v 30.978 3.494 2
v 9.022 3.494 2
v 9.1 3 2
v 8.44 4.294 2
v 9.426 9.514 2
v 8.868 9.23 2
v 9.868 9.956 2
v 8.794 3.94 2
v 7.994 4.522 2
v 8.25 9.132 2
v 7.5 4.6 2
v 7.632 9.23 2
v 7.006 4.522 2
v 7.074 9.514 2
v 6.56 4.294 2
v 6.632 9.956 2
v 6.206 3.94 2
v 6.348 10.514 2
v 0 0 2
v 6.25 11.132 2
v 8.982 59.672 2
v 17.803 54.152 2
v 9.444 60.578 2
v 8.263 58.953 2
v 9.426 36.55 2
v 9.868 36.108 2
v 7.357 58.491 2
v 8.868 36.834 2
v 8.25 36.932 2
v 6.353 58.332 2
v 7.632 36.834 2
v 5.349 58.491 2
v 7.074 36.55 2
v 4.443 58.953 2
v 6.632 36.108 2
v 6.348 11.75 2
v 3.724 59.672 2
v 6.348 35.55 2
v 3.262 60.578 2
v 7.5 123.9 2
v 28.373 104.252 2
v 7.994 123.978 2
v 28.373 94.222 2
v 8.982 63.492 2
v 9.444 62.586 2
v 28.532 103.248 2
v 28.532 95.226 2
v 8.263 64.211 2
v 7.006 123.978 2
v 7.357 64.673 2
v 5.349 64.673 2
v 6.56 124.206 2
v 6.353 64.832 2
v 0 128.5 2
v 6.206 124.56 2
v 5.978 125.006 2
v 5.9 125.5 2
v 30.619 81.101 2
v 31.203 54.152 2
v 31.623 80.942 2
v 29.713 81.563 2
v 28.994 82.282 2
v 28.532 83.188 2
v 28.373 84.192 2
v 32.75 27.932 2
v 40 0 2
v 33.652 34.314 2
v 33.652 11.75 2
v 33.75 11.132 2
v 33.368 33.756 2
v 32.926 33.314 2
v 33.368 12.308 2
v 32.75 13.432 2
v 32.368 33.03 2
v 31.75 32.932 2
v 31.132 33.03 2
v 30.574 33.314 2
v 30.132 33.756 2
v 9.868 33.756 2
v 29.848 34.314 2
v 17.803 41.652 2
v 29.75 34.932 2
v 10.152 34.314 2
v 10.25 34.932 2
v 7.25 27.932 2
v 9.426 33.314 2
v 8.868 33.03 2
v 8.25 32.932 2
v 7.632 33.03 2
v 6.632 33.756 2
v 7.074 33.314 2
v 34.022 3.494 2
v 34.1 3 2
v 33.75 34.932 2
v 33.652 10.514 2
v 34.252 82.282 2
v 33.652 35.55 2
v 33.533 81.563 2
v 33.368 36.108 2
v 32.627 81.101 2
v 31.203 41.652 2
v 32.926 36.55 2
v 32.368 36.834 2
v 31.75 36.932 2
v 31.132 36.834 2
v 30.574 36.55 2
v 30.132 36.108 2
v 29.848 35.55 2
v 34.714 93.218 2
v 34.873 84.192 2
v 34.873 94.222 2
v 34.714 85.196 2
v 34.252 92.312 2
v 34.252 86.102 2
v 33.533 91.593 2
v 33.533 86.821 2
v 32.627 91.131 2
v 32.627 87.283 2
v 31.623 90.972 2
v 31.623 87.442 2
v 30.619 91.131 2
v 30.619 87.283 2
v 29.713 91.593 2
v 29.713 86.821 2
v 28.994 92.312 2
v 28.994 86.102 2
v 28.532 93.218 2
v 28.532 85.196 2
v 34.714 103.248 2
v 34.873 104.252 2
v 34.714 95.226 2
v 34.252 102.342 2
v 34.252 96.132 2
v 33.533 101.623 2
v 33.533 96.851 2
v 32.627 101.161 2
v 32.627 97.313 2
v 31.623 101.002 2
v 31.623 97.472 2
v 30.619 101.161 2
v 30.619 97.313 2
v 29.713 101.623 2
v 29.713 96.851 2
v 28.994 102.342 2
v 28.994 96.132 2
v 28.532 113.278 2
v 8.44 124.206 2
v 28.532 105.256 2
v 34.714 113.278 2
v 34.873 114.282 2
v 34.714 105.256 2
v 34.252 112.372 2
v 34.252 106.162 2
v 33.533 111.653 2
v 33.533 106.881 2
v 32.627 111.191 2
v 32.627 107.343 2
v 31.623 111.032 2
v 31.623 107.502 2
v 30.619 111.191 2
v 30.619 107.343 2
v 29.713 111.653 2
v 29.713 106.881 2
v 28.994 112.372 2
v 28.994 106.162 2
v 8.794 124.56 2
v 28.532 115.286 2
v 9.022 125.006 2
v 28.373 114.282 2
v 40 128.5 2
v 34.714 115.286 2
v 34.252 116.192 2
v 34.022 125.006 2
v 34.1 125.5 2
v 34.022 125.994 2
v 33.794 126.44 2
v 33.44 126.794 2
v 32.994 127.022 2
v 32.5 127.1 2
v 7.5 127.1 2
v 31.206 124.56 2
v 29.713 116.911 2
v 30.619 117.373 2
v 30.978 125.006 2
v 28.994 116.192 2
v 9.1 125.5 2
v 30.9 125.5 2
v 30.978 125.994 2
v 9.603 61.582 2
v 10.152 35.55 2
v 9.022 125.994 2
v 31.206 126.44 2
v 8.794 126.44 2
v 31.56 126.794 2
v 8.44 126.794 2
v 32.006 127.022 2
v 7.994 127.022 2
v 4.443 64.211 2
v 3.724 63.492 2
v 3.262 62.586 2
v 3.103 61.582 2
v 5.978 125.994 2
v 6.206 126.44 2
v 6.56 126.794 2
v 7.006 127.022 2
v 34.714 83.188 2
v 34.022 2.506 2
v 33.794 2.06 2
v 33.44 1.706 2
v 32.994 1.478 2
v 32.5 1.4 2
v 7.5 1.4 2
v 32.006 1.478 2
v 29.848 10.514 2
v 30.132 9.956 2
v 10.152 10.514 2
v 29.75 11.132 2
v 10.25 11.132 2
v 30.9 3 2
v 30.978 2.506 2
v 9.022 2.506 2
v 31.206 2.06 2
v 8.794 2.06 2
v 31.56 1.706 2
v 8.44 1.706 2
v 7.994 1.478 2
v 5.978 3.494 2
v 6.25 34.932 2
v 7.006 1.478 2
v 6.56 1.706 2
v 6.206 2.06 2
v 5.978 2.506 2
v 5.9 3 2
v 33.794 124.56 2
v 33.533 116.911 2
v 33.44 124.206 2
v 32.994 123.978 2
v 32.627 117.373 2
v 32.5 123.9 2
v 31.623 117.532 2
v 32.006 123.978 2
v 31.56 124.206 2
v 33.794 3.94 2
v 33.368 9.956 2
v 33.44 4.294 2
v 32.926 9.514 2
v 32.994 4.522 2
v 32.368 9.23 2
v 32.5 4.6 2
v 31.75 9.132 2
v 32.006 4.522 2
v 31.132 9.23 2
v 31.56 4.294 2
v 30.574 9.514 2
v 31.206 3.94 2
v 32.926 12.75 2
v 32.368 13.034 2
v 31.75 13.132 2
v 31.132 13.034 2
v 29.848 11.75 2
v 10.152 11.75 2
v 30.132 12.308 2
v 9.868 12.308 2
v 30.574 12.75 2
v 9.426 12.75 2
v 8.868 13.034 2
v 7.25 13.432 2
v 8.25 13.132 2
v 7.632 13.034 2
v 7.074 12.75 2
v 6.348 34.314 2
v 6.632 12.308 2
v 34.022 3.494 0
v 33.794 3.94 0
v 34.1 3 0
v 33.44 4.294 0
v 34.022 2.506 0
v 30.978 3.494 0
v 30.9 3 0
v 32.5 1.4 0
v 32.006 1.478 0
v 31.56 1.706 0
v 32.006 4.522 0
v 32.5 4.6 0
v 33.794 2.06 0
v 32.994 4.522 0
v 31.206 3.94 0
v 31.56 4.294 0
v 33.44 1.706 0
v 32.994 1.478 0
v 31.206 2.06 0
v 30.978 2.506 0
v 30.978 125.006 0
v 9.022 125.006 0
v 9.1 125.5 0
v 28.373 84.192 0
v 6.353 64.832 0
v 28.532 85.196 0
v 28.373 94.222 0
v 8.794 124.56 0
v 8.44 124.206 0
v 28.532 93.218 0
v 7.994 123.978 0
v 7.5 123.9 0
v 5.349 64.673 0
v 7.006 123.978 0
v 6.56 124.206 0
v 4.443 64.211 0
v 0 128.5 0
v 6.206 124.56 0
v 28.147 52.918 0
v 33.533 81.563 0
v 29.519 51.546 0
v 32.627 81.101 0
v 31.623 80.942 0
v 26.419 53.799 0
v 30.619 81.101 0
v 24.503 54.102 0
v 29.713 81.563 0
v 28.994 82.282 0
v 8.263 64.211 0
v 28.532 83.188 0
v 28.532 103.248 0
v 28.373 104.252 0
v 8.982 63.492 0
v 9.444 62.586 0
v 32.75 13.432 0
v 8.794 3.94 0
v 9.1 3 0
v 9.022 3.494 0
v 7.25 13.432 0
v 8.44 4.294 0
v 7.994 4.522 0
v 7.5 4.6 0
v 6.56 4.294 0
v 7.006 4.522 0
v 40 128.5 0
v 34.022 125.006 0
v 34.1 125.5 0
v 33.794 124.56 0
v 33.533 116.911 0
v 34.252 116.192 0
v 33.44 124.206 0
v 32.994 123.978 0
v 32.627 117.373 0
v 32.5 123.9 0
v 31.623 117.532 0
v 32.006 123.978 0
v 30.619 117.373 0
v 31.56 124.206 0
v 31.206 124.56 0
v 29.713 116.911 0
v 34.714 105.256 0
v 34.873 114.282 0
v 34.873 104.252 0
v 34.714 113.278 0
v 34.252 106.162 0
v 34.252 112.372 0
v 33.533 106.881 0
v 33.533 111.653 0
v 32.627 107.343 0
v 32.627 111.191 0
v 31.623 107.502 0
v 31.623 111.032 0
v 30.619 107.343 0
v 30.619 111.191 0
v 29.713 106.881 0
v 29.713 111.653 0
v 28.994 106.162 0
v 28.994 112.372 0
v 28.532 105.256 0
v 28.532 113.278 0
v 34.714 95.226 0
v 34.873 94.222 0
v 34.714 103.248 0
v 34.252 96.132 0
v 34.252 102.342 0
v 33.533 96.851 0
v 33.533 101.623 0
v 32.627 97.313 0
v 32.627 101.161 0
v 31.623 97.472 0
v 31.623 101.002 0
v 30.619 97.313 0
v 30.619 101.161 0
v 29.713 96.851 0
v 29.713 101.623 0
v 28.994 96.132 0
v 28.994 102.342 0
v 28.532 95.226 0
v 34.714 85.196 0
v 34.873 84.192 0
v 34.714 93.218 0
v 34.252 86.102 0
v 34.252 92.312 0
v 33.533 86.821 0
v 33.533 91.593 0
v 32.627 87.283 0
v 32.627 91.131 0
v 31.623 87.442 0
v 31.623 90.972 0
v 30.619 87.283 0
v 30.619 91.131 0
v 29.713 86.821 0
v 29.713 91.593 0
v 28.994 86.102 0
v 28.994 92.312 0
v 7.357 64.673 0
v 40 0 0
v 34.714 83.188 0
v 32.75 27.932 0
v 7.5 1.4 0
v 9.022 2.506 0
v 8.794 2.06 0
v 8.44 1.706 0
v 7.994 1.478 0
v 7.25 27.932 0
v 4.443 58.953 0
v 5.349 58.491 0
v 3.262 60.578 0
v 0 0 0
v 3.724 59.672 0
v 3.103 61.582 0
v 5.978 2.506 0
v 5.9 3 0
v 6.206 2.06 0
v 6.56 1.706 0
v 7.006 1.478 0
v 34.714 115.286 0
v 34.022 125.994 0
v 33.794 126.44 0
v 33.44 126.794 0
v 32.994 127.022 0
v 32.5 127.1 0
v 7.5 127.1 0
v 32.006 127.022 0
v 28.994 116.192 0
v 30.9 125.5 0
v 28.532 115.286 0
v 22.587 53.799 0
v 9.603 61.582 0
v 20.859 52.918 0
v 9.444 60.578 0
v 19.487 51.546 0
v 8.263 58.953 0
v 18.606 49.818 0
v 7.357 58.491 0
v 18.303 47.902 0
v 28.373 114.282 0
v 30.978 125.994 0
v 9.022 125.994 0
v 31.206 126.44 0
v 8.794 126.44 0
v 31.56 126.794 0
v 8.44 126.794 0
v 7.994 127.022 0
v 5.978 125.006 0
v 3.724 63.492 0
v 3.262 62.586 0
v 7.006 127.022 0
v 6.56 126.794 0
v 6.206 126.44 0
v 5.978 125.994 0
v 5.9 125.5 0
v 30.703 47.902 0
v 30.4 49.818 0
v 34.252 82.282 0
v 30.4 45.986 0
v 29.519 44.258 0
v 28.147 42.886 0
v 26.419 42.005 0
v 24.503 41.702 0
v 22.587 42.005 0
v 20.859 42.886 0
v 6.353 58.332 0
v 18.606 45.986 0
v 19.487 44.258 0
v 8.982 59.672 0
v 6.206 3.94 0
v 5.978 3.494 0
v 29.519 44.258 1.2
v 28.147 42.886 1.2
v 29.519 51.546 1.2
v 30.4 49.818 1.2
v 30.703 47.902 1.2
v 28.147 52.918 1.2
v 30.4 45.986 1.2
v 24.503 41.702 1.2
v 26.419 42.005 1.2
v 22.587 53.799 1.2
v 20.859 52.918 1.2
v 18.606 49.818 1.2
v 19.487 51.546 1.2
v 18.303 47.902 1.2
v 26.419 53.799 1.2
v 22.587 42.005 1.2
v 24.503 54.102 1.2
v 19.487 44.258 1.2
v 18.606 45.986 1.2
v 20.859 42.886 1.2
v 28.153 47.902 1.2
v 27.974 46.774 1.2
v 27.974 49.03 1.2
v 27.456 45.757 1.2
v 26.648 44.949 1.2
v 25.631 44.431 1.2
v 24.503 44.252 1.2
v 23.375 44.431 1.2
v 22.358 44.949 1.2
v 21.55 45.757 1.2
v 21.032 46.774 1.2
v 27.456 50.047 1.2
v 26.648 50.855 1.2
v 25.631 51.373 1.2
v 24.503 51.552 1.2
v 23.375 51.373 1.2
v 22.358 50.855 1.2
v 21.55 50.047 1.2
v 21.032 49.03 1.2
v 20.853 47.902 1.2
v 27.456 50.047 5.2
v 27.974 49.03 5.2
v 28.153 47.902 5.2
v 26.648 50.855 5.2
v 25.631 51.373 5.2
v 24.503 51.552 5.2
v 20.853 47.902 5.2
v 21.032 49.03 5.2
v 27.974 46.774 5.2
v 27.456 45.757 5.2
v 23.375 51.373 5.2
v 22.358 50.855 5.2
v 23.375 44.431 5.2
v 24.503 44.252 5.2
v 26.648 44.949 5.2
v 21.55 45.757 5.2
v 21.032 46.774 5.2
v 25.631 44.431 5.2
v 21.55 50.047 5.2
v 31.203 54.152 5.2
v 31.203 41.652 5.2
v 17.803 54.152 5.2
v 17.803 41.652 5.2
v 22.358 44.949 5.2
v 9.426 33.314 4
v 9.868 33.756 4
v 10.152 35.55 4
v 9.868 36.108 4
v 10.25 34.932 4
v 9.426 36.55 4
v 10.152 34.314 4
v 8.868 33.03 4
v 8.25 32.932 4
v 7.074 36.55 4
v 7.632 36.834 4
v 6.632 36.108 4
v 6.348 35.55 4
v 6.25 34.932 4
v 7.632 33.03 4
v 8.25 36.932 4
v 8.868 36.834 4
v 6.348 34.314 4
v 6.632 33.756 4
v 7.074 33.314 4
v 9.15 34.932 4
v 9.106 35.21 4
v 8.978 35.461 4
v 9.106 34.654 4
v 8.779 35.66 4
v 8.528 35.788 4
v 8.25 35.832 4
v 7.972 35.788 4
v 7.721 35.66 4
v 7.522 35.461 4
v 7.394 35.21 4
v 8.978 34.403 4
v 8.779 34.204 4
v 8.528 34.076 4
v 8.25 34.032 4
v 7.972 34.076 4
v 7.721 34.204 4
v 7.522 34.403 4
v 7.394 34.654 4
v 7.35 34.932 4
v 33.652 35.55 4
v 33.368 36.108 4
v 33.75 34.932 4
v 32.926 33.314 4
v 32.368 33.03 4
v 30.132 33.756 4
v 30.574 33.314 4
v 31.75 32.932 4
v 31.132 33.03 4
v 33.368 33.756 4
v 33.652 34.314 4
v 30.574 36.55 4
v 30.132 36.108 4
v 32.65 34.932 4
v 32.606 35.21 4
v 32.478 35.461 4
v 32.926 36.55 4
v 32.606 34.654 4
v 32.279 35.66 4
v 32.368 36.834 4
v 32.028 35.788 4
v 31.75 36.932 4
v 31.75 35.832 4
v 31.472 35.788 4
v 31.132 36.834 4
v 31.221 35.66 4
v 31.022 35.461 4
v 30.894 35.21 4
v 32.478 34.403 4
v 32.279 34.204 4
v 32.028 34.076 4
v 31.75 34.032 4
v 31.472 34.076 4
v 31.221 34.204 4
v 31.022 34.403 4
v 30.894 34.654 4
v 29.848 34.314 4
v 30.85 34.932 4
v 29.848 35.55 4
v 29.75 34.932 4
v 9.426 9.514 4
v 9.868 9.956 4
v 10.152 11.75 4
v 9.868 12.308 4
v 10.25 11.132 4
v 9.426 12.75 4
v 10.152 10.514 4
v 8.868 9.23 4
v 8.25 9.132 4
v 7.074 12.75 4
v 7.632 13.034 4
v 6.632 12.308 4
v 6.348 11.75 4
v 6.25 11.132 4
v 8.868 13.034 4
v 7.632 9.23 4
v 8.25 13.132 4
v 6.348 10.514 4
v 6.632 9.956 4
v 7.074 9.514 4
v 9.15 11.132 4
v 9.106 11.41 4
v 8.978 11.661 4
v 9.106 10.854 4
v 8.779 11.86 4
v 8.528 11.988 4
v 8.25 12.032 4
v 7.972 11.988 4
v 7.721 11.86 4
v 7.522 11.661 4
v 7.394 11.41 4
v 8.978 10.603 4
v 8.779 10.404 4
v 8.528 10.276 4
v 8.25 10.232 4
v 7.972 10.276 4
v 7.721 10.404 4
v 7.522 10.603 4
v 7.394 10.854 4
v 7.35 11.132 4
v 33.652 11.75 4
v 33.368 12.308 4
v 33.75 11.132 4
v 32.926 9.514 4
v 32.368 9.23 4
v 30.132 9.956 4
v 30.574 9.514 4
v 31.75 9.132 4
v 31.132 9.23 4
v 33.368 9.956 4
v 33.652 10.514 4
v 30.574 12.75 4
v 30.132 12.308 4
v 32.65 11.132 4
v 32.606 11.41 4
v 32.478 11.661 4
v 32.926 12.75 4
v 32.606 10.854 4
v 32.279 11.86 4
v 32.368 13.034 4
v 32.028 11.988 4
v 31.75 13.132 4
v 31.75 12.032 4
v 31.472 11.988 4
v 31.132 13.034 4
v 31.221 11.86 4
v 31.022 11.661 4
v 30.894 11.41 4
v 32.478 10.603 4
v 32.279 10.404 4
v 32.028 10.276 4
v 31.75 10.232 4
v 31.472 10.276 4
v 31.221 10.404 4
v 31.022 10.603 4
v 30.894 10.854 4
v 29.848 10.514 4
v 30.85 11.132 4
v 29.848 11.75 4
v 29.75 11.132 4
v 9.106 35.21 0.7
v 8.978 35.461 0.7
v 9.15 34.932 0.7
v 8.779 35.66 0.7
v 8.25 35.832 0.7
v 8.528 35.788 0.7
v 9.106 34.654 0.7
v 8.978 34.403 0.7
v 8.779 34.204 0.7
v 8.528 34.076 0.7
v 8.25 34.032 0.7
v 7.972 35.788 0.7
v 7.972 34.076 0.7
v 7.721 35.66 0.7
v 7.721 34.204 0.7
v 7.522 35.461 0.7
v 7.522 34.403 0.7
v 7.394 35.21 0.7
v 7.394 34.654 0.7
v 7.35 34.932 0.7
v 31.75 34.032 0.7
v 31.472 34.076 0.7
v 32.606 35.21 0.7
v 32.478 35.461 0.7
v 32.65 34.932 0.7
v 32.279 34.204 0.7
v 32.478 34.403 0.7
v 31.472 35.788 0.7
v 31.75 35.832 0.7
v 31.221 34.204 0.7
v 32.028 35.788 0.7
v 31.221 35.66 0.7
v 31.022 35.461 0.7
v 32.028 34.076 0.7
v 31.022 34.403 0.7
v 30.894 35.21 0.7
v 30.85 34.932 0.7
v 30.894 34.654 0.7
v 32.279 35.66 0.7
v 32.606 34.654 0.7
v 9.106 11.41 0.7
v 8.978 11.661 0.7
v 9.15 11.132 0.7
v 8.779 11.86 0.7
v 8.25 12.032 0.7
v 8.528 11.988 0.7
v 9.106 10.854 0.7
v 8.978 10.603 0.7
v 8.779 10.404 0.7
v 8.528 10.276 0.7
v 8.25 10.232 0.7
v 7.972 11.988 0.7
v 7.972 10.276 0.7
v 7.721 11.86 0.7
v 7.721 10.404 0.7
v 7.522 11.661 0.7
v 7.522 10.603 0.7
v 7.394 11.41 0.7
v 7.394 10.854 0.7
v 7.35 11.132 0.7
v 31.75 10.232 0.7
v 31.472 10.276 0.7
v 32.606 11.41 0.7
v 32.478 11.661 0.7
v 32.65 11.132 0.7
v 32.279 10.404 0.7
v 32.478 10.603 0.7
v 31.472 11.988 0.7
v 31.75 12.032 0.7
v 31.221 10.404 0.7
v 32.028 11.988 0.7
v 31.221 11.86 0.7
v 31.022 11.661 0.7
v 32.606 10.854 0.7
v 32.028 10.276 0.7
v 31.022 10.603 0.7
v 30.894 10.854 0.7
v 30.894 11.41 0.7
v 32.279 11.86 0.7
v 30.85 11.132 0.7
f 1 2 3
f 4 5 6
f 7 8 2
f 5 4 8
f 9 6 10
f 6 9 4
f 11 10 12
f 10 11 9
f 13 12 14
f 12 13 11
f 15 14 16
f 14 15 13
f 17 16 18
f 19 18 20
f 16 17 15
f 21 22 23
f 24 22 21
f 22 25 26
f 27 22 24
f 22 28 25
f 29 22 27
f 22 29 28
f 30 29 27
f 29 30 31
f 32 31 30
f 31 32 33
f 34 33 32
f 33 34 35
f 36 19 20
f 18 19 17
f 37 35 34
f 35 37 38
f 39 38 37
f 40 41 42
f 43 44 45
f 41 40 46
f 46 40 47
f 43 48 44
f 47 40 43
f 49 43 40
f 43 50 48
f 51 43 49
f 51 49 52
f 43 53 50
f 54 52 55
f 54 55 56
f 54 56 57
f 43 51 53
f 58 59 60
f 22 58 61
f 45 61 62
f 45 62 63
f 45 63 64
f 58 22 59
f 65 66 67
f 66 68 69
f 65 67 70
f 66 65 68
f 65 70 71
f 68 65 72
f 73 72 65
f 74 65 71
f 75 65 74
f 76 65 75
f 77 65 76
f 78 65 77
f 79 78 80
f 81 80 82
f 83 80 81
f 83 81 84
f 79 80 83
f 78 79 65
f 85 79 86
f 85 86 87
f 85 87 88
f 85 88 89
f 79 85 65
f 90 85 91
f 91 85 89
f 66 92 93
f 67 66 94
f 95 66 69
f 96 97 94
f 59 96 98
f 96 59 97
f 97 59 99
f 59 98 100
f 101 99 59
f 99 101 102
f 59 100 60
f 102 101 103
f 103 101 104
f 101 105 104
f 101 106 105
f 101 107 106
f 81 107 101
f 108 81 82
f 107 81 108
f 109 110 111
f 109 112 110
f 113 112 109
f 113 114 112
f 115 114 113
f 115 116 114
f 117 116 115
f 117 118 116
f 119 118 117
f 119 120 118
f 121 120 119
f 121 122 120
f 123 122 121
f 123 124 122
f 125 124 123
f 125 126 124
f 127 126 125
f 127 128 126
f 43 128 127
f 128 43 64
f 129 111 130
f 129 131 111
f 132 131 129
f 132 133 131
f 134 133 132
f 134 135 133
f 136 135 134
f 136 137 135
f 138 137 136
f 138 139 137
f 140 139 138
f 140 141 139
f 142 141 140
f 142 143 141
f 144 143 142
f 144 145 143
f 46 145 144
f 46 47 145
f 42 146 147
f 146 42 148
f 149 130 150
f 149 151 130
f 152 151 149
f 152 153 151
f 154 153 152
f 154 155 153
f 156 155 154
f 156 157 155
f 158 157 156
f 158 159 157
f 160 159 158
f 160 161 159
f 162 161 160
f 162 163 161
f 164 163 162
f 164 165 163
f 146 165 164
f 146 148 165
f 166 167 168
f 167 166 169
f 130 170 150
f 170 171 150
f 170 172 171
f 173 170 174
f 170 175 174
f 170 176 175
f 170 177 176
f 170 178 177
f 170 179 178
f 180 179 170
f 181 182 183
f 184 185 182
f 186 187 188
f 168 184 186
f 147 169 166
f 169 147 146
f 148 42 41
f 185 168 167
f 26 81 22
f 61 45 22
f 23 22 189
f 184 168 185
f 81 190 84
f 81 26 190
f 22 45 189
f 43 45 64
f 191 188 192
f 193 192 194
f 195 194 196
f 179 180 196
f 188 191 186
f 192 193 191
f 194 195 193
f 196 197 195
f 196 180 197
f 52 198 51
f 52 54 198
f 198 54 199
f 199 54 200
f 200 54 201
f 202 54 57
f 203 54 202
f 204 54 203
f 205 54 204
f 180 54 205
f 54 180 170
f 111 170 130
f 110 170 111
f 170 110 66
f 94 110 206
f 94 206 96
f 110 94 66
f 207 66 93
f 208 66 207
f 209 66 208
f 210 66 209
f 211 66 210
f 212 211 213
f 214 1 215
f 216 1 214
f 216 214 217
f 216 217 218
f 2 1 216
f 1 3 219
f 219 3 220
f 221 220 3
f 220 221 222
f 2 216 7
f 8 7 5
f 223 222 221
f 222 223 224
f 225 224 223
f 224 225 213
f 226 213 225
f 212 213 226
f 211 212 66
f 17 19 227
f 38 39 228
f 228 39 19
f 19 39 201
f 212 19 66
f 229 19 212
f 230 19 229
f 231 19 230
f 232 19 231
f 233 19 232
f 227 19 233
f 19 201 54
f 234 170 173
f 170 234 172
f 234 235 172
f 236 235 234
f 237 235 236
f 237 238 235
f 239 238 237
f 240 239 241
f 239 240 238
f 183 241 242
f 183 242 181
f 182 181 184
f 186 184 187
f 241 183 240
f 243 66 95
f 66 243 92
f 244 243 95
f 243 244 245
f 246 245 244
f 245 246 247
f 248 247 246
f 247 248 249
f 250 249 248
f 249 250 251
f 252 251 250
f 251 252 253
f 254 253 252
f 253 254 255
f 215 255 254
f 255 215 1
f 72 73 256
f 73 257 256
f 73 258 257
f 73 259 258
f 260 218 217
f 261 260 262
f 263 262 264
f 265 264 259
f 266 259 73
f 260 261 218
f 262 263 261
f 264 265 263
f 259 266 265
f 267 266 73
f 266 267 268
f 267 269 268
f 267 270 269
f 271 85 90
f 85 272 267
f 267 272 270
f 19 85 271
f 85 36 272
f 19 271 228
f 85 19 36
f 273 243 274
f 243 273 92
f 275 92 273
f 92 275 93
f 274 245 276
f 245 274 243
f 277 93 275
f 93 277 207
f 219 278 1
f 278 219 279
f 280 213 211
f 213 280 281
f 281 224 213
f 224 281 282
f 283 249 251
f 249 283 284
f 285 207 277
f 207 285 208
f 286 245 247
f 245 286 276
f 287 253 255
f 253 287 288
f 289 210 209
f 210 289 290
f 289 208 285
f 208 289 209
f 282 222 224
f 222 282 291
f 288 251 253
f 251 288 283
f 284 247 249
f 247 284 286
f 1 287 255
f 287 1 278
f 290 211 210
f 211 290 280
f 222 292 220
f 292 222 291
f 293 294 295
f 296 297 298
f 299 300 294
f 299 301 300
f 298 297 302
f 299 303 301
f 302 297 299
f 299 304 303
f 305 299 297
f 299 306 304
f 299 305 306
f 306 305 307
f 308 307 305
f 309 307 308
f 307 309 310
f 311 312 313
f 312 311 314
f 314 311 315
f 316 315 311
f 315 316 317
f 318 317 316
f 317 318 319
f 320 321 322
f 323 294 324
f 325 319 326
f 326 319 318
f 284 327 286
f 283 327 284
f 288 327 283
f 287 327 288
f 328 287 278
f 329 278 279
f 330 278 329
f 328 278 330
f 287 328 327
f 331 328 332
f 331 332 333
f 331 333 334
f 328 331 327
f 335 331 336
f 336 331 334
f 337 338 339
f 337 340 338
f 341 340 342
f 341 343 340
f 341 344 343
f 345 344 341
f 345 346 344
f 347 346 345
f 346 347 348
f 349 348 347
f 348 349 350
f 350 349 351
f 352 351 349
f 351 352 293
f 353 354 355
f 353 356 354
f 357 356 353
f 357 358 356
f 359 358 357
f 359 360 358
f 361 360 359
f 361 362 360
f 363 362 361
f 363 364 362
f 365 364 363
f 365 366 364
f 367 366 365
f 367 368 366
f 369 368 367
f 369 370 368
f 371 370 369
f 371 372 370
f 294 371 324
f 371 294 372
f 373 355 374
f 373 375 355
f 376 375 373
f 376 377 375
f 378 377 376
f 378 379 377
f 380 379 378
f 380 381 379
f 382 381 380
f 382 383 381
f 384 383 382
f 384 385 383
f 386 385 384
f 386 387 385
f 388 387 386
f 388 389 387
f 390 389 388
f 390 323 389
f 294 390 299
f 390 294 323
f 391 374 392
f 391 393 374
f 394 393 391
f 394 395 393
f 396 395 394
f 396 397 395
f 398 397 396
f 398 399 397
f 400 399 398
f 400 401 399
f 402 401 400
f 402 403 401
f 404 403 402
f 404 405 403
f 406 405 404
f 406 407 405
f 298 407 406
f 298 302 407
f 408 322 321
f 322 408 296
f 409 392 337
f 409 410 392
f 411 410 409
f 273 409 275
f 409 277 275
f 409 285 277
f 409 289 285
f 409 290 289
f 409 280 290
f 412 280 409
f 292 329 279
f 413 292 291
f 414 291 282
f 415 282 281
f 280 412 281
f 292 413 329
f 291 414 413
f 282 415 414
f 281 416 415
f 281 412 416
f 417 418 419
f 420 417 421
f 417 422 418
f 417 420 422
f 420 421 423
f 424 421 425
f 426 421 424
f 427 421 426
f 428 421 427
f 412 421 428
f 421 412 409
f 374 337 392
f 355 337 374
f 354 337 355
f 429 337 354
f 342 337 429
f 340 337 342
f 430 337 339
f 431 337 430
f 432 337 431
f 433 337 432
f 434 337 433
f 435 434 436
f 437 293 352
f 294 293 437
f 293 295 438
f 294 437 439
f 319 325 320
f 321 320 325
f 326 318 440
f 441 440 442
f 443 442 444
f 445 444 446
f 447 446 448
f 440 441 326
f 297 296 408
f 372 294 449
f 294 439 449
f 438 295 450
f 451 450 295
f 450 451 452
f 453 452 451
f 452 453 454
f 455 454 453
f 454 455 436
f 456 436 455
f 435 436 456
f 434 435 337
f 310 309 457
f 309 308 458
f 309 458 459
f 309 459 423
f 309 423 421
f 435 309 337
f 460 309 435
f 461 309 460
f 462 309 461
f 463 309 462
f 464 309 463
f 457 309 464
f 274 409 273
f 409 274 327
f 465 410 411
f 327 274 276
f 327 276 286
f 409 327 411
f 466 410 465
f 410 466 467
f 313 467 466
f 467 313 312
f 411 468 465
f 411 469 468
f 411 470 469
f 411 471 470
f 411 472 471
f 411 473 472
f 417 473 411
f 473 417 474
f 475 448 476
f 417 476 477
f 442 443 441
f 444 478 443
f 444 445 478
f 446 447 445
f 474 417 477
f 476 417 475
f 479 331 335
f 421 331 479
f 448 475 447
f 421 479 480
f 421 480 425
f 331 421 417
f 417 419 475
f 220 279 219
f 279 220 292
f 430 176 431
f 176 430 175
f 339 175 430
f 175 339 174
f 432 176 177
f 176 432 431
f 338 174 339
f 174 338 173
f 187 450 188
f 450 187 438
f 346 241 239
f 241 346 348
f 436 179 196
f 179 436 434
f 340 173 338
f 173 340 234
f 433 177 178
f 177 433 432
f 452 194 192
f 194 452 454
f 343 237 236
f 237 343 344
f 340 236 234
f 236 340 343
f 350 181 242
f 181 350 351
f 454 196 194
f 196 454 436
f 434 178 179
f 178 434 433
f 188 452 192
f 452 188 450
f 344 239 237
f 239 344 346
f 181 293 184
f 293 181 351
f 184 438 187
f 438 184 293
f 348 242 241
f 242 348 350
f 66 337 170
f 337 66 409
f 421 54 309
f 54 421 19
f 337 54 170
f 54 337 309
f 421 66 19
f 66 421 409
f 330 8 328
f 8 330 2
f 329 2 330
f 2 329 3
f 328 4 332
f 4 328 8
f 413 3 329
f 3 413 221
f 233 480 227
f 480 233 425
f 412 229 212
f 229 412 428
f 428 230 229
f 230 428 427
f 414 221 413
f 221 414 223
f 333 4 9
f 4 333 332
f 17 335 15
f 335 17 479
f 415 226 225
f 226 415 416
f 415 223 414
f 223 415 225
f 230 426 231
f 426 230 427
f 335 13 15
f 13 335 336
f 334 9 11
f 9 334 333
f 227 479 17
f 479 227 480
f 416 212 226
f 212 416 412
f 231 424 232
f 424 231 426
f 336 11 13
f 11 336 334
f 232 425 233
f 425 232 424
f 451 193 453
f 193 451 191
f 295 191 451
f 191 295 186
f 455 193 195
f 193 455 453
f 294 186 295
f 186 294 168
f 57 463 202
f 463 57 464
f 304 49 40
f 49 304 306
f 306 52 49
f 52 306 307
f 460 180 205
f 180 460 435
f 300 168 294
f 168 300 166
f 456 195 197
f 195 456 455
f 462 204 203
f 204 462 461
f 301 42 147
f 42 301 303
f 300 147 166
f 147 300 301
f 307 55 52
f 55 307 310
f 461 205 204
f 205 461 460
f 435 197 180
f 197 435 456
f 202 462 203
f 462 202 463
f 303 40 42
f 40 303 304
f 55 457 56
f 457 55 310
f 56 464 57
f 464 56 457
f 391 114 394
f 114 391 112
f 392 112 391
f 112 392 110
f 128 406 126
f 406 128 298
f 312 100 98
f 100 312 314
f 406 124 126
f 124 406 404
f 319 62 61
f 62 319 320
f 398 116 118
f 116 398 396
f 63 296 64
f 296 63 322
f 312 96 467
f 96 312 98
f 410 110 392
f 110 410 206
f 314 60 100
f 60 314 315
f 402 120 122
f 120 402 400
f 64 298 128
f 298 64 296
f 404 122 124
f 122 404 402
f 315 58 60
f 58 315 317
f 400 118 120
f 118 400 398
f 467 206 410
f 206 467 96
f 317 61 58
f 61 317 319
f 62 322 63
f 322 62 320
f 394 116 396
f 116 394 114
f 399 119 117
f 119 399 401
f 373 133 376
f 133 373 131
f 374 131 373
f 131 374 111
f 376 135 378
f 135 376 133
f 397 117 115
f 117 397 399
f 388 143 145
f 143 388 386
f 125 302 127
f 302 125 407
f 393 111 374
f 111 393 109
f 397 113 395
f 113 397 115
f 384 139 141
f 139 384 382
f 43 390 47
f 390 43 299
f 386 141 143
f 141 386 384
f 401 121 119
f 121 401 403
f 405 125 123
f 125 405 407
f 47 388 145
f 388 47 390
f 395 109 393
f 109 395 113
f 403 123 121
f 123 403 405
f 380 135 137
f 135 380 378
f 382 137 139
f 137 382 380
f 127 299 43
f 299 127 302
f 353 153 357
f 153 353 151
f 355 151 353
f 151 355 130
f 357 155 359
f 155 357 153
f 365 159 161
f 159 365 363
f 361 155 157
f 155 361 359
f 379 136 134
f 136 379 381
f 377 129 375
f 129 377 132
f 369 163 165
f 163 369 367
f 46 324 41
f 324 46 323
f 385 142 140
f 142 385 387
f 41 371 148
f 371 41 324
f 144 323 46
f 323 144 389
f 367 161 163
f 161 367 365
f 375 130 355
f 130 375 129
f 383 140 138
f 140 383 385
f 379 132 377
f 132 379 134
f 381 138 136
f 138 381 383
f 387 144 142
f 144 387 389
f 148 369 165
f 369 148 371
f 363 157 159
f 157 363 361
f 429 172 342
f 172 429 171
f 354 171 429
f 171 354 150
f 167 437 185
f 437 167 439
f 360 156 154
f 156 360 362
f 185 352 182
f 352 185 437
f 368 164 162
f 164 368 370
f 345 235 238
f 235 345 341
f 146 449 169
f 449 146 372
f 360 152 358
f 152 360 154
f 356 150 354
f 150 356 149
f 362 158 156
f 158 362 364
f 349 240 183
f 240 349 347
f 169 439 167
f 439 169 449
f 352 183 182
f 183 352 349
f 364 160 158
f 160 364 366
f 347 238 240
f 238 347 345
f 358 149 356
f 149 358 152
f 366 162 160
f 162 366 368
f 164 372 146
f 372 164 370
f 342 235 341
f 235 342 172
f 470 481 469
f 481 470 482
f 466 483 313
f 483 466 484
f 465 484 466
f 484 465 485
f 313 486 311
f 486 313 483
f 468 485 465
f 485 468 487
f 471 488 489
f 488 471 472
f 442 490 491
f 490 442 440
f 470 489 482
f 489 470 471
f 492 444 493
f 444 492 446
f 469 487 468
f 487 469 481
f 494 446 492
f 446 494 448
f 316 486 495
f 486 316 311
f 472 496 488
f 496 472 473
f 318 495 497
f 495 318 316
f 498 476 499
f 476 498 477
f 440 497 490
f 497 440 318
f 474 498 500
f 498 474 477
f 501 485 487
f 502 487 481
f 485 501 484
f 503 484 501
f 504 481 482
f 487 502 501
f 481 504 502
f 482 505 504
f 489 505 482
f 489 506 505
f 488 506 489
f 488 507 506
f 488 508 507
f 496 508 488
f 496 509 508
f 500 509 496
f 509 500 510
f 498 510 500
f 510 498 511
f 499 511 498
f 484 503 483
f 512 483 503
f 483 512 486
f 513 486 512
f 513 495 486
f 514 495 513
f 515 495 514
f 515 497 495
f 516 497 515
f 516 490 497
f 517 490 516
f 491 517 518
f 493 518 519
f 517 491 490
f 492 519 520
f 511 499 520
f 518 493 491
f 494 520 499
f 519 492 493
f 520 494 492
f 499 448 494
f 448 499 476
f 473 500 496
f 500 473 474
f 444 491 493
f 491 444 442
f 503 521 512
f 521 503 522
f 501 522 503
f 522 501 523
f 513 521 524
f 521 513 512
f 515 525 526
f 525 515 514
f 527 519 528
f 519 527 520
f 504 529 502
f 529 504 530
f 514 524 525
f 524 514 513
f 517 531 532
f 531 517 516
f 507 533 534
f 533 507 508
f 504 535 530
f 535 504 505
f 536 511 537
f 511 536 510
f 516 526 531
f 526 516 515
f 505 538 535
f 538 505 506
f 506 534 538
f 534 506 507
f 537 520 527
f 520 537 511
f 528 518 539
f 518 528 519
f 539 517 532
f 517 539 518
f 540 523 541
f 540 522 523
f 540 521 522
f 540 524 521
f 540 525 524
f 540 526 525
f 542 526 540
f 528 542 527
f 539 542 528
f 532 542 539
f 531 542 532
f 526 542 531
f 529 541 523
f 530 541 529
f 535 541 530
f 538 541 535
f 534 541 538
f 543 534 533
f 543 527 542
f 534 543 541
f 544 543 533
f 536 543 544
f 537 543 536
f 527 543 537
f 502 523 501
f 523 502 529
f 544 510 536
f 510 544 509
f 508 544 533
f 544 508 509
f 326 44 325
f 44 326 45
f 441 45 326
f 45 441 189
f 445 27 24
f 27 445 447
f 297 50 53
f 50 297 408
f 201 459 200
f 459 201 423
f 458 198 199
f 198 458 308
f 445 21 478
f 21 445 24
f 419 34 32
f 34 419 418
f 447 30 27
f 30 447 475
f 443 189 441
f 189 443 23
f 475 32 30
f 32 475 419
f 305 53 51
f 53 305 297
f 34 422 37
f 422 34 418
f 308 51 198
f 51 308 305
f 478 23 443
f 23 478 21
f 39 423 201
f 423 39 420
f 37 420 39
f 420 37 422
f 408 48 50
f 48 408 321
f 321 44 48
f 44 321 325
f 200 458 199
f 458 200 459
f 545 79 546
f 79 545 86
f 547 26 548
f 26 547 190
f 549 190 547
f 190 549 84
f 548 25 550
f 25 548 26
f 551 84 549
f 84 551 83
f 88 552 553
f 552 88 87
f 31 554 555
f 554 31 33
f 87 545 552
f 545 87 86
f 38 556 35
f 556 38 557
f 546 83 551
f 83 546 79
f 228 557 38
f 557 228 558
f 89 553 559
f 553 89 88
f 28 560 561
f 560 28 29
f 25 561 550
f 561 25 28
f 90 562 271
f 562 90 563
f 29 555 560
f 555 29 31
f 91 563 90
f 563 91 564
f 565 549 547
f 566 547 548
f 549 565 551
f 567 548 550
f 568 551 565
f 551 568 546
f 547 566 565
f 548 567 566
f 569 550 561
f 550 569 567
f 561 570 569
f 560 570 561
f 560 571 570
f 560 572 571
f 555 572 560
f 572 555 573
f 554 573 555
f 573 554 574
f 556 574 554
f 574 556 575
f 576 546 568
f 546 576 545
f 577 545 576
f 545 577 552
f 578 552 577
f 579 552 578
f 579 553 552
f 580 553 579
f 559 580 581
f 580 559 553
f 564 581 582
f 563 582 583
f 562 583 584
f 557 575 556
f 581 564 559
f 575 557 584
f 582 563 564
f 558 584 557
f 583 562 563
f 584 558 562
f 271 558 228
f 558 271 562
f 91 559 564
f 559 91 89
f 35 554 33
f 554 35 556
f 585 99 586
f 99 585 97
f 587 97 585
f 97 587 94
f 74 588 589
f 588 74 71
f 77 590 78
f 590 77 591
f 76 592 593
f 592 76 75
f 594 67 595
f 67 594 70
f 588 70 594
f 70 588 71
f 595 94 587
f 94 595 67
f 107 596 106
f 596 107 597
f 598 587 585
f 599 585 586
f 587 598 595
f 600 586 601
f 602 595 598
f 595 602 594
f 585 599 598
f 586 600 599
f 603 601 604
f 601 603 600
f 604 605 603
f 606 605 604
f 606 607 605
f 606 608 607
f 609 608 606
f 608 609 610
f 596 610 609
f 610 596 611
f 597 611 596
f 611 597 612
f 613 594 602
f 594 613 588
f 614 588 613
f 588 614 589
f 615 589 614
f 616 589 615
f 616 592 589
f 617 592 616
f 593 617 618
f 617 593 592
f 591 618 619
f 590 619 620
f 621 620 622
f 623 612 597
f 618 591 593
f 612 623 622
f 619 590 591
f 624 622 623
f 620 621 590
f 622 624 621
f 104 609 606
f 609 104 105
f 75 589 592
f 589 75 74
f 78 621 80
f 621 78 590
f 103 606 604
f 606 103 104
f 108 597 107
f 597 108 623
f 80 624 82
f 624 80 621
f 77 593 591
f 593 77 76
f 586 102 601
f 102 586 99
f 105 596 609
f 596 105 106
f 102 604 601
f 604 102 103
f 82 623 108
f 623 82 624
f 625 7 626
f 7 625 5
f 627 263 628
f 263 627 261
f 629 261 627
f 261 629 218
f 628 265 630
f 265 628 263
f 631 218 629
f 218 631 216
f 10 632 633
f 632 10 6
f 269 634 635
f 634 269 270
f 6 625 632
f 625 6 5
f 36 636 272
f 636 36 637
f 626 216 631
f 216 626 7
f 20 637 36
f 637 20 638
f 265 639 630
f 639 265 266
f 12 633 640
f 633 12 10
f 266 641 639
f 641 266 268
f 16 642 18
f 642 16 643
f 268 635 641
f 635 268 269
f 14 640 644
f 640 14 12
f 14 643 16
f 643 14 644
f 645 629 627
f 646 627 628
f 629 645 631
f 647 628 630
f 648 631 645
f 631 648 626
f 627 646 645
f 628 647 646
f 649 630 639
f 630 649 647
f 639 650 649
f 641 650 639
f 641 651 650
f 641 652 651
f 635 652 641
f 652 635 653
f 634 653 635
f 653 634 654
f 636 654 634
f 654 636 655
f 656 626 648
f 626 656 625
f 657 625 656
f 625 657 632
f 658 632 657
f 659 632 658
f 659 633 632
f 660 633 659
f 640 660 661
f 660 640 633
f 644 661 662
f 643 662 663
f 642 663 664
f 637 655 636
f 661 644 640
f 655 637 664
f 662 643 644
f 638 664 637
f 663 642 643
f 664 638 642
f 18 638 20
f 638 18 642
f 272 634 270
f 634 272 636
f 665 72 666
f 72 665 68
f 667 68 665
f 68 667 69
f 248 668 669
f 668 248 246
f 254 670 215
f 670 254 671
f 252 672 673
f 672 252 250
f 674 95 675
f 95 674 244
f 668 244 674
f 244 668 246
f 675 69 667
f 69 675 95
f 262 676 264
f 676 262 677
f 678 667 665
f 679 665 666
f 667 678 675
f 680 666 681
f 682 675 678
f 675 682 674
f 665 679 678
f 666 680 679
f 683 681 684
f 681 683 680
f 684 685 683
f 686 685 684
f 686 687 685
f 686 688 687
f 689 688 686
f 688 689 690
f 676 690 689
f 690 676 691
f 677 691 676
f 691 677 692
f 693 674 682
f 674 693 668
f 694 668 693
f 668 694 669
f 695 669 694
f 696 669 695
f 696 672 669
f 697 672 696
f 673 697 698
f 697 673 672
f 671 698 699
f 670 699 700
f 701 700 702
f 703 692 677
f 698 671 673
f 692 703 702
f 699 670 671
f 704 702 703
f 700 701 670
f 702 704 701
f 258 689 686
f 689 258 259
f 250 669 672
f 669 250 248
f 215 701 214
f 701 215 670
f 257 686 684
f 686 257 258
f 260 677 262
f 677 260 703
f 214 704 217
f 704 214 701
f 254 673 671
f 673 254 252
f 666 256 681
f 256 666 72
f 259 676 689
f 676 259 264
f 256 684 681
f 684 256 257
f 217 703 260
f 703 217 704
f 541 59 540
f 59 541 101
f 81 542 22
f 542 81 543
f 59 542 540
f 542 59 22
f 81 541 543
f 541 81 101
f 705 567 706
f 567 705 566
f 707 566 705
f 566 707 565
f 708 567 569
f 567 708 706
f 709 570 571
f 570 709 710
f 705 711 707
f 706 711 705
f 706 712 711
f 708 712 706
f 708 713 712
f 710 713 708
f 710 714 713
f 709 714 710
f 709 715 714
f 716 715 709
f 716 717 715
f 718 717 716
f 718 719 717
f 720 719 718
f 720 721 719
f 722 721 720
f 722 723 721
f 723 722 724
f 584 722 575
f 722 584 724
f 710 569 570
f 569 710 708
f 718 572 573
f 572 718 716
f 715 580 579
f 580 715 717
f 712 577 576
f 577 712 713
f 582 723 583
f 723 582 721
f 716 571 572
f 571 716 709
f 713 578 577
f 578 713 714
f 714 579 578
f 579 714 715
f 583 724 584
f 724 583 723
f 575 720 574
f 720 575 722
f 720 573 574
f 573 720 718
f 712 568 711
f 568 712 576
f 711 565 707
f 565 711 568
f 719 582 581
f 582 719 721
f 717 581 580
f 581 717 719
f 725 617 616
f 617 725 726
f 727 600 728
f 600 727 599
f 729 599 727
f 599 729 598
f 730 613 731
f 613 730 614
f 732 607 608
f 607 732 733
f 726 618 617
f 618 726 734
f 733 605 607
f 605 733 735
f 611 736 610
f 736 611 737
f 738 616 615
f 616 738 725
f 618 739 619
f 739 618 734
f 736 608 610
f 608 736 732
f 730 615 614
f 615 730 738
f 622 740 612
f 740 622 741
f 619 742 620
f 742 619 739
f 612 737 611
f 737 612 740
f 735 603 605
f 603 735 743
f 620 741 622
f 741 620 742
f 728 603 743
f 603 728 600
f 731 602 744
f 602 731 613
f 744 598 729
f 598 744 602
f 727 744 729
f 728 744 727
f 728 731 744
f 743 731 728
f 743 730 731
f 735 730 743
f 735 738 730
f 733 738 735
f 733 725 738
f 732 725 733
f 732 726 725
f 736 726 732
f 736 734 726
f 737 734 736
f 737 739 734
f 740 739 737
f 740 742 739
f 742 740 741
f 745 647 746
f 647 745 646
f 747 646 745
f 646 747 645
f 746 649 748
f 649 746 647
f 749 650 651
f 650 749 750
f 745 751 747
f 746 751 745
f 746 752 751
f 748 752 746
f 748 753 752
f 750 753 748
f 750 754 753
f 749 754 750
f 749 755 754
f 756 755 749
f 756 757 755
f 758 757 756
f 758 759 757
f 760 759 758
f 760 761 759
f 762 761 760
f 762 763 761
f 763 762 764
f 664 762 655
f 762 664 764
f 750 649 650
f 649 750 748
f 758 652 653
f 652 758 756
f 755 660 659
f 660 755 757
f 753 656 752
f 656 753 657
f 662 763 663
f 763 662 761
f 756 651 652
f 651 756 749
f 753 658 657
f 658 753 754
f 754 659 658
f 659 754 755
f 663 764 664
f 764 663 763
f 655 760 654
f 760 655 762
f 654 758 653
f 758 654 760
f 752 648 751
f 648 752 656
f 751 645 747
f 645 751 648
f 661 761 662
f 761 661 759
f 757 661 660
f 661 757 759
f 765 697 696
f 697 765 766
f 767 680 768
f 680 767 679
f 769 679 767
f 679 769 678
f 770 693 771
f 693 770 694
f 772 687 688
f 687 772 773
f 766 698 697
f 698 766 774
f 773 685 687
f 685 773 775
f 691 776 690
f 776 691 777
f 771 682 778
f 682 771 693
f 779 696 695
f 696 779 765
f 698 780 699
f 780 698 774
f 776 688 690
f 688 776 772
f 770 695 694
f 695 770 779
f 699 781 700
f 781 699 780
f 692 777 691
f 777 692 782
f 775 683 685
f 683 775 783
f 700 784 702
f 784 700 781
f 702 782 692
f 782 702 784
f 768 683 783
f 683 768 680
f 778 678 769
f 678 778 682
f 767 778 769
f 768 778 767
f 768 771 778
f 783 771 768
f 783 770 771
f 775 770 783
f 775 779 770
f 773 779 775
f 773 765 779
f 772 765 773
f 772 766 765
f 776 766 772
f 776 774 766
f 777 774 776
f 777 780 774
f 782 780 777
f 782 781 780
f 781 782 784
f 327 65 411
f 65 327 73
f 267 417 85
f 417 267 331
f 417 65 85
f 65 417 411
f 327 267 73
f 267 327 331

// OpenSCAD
// file: ../../../share/openscad/eurorack-panel.scad
// this is based on A100 spec from doepfer https://doepfer.de/a100_man/a100m_e.htm

eurorack_panel_height = function() 128.5;
eurorack_panel_width = function(width_in_hp) width_in_hp * 5;

module eurorack_panel(width_in_hp, thickness=2) {
    difference() {
        cube([eurorack_panel_width(width_in_hp), eurorack_panel_height(), thickness]);

        translate([7.5, 3, 0])
            cylinder(thickness, d=3.2, $fn=20);
        translate([7.5, eurorack_panel_height() - 3, 0])
            cylinder(thickness, d=3.2, $fn=20);

        if (width_in_hp >= 8) {
            translate([eurorack_panel_width(width_in_hp) - 7.5, 3, 0])
                cylinder(thickness, d=3.2, $fn=20);
            translate([eurorack_panel_width(width_in_hp) - 7.5, eurorack_panel_height() - 3, 0])
                cylinder(thickness, d=3.2, $fn=20);
        }
    }
}
// main file
include <../../../share/openscad/eurorack-panel.scad>

width_in_hp = 8;
thickness = 2;

pcb_width = 38.227;
pcb_height = 110.236;

pcb0_x = eurorack_panel_width(width_in_hp) - pcb_width - 0.5;
pcb0_y = (eurorack_panel_height() - pcb_height) / 2;

oled_hole_z = 3.4;
oled_hole_base_z = 2;
oled_hole_base_d = 4;
oled_hole_d = 1.8;
oled_hole_spacing_x = 23.5;
oled_hole_spacing_y = 23.8;
oled0_x = (eurorack_panel_width(width_in_hp) - oled_hole_spacing_x) / 2;
oled0_y = pcb0_y + 2;
oled_screen_width = 25.5;
oled_screen_height = 14.5;
oled_screen_distance_x = (oled_hole_spacing_x - oled_screen_width) / 2;
oled_screen_distance_y = 2.3;

encoder_distance_x = 23.23;
encoder_distance_y = 38.77;
encoder_dim_x = 13.4;
encoder_dim_y = 12.5;
encoder_spacer_z = 3.2;
encoder_washer_d = 12.4;
encoder_washer_spacing = 1.2;
encoder_d = 7.3;

jack_in_distance_x = 5.08;
jack_in_distance_y = 52.45;

jack_out_distance_x = 30.35;
jack_out1_distance_y = 75.06;
jack_out_spacing_y = 10.03;

jack_distance_x = 6.096;
jack_distance_y = 90.043;
jack_d = 6.5;

difference() {
    union() {
        eurorack_panel(width_in_hp, thickness);

        translate([oled0_x, oled0_y, thickness]) {
            cylinder(h=oled_hole_base_z, d=oled_hole_base_d, $fn=20);
            translate([oled_hole_spacing_x, 0, 0])
                cylinder(h=oled_hole_base_z, d=oled_hole_base_d, $fn=20);
            translate([0, oled_hole_spacing_y, 0]) {
                cylinder(h=oled_hole_base_z, d=oled_hole_base_d, $fn=20);
                translate([oled_hole_spacing_x, 0, 0])
                    cylinder(h=oled_hole_base_z, d=oled_hole_base_d, $fn=20);
            }
        }

        translate([pcb0_x, pcb0_y, thickness]) {
            translate([encoder_distance_x, encoder_distance_y, encoder_spacer_z / 2])
                cube([encoder_dim_x, encoder_dim_y, encoder_spacer_z], center=true);
        }
    }

    translate([oled0_x, oled0_y, 0]) {
        translate([oled_screen_distance_x, oled_screen_distance_y, 0])
            cube([oled_screen_width, oled_screen_height, thickness]);
        
        translate([0, 0, thickness + oled_hole_base_z - oled_hole_z + 0.1]) {
            cylinder(h=oled_hole_z, d=oled_hole_d, $fn=20);
            translate([oled_hole_spacing_x, 0, 0])
                cylinder(h=oled_hole_z, d=oled_hole_d, $fn=20);
            translate([0, oled_hole_spacing_y, 0]) {
                cylinder(h=oled_hole_z, d=oled_hole_d, $fn=20);
                translate([oled_hole_spacing_x, 0, 0])
                    cylinder(h=oled_hole_z, d=oled_hole_d, $fn=20);
            }
        }
    }

    translate([pcb0_x, pcb0_y, 0]) {
        translate([encoder_distance_x, encoder_distance_y, 0]) {
            cylinder(encoder_washer_spacing, d=encoder_washer_d, $fn=20);
            cylinder(thickness + encoder_spacer_z, d=encoder_d, $fn=20);
        }

        translate([jack_in_distance_x, jack_in_distance_y, 0])
            cylinder(thickness, d=jack_d, $fn=20);

        for (i = [0 : 3]) {
            translate([jack_out_distance_x, jack_out1_distance_y + (i * jack_out_spacing_y), 0])
                cylinder(thickness, d=jack_d, $fn=20);
        }
    }
}
